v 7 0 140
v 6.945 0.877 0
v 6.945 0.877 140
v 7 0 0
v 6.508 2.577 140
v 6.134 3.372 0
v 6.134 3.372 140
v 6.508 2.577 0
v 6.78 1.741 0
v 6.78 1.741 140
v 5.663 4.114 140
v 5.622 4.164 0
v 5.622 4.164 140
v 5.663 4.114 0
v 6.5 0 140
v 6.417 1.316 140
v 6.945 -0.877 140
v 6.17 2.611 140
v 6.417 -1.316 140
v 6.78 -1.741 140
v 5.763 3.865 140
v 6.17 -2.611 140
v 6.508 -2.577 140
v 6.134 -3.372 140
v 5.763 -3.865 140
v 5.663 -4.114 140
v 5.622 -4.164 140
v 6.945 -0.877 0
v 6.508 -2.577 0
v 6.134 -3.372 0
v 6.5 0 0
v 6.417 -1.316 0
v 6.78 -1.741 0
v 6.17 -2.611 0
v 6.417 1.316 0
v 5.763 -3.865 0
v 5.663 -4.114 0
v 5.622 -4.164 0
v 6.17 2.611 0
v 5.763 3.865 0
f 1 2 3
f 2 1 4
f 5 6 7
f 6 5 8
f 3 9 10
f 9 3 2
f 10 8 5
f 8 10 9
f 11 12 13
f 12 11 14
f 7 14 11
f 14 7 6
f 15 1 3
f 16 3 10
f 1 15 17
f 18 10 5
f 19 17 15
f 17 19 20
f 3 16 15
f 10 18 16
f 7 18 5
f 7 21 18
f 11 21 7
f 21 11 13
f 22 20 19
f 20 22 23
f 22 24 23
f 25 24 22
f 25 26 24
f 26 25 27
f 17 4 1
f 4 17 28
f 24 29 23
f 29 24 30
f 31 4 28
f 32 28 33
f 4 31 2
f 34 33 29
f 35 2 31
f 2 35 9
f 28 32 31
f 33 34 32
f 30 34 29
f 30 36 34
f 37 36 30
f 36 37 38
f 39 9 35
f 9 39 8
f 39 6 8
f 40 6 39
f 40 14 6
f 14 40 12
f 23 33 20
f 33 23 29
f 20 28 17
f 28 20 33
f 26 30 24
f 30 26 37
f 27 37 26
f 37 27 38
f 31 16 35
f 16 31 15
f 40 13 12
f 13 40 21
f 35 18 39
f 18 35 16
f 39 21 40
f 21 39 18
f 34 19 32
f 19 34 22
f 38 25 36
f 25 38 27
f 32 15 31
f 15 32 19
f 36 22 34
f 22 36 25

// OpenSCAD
$fn = 50;


difference() {
	union() {
		cylinder(h = 140, r = 7.0000000000);
		translate(v = [-7.0000000000, 0, 0]) {
			cylinder(h = 140, r = 7.0000000000);
		}
	}
	union() {
		cylinder(h = 140, r = 3.2500000000);
		cylinder(h = 140, r = 1.8000000000);
		cylinder(h = 140, r = 1.8000000000);
		cylinder(h = 140, r = 1.8000000000);
		translate(v = [-11.5000000000, 0, 0]) {
			hull() {
				translate(v = [-3.7500000000, 0.0000000000, 0]) {
					cylinder(h = 140, r = 7.5000000000);
				}
				translate(v = [3.7500000000, 0.0000000000, 0]) {
					cylinder(h = 140, r = 7.5000000000);
				}
				translate(v = [-3.7500000000, -0.0000000000, 0]) {
					cylinder(h = 140, r = 7.5000000000);
				}
				translate(v = [3.7500000000, -0.0000000000, 0]) {
					cylinder(h = 140, r = 7.5000000000);
				}
			}
		}
		translate(v = [-4.0000000000, 0, 0.0000000000]) {
			cylinder(h = 140, r = 10.5000000000);
		}
	}
}
